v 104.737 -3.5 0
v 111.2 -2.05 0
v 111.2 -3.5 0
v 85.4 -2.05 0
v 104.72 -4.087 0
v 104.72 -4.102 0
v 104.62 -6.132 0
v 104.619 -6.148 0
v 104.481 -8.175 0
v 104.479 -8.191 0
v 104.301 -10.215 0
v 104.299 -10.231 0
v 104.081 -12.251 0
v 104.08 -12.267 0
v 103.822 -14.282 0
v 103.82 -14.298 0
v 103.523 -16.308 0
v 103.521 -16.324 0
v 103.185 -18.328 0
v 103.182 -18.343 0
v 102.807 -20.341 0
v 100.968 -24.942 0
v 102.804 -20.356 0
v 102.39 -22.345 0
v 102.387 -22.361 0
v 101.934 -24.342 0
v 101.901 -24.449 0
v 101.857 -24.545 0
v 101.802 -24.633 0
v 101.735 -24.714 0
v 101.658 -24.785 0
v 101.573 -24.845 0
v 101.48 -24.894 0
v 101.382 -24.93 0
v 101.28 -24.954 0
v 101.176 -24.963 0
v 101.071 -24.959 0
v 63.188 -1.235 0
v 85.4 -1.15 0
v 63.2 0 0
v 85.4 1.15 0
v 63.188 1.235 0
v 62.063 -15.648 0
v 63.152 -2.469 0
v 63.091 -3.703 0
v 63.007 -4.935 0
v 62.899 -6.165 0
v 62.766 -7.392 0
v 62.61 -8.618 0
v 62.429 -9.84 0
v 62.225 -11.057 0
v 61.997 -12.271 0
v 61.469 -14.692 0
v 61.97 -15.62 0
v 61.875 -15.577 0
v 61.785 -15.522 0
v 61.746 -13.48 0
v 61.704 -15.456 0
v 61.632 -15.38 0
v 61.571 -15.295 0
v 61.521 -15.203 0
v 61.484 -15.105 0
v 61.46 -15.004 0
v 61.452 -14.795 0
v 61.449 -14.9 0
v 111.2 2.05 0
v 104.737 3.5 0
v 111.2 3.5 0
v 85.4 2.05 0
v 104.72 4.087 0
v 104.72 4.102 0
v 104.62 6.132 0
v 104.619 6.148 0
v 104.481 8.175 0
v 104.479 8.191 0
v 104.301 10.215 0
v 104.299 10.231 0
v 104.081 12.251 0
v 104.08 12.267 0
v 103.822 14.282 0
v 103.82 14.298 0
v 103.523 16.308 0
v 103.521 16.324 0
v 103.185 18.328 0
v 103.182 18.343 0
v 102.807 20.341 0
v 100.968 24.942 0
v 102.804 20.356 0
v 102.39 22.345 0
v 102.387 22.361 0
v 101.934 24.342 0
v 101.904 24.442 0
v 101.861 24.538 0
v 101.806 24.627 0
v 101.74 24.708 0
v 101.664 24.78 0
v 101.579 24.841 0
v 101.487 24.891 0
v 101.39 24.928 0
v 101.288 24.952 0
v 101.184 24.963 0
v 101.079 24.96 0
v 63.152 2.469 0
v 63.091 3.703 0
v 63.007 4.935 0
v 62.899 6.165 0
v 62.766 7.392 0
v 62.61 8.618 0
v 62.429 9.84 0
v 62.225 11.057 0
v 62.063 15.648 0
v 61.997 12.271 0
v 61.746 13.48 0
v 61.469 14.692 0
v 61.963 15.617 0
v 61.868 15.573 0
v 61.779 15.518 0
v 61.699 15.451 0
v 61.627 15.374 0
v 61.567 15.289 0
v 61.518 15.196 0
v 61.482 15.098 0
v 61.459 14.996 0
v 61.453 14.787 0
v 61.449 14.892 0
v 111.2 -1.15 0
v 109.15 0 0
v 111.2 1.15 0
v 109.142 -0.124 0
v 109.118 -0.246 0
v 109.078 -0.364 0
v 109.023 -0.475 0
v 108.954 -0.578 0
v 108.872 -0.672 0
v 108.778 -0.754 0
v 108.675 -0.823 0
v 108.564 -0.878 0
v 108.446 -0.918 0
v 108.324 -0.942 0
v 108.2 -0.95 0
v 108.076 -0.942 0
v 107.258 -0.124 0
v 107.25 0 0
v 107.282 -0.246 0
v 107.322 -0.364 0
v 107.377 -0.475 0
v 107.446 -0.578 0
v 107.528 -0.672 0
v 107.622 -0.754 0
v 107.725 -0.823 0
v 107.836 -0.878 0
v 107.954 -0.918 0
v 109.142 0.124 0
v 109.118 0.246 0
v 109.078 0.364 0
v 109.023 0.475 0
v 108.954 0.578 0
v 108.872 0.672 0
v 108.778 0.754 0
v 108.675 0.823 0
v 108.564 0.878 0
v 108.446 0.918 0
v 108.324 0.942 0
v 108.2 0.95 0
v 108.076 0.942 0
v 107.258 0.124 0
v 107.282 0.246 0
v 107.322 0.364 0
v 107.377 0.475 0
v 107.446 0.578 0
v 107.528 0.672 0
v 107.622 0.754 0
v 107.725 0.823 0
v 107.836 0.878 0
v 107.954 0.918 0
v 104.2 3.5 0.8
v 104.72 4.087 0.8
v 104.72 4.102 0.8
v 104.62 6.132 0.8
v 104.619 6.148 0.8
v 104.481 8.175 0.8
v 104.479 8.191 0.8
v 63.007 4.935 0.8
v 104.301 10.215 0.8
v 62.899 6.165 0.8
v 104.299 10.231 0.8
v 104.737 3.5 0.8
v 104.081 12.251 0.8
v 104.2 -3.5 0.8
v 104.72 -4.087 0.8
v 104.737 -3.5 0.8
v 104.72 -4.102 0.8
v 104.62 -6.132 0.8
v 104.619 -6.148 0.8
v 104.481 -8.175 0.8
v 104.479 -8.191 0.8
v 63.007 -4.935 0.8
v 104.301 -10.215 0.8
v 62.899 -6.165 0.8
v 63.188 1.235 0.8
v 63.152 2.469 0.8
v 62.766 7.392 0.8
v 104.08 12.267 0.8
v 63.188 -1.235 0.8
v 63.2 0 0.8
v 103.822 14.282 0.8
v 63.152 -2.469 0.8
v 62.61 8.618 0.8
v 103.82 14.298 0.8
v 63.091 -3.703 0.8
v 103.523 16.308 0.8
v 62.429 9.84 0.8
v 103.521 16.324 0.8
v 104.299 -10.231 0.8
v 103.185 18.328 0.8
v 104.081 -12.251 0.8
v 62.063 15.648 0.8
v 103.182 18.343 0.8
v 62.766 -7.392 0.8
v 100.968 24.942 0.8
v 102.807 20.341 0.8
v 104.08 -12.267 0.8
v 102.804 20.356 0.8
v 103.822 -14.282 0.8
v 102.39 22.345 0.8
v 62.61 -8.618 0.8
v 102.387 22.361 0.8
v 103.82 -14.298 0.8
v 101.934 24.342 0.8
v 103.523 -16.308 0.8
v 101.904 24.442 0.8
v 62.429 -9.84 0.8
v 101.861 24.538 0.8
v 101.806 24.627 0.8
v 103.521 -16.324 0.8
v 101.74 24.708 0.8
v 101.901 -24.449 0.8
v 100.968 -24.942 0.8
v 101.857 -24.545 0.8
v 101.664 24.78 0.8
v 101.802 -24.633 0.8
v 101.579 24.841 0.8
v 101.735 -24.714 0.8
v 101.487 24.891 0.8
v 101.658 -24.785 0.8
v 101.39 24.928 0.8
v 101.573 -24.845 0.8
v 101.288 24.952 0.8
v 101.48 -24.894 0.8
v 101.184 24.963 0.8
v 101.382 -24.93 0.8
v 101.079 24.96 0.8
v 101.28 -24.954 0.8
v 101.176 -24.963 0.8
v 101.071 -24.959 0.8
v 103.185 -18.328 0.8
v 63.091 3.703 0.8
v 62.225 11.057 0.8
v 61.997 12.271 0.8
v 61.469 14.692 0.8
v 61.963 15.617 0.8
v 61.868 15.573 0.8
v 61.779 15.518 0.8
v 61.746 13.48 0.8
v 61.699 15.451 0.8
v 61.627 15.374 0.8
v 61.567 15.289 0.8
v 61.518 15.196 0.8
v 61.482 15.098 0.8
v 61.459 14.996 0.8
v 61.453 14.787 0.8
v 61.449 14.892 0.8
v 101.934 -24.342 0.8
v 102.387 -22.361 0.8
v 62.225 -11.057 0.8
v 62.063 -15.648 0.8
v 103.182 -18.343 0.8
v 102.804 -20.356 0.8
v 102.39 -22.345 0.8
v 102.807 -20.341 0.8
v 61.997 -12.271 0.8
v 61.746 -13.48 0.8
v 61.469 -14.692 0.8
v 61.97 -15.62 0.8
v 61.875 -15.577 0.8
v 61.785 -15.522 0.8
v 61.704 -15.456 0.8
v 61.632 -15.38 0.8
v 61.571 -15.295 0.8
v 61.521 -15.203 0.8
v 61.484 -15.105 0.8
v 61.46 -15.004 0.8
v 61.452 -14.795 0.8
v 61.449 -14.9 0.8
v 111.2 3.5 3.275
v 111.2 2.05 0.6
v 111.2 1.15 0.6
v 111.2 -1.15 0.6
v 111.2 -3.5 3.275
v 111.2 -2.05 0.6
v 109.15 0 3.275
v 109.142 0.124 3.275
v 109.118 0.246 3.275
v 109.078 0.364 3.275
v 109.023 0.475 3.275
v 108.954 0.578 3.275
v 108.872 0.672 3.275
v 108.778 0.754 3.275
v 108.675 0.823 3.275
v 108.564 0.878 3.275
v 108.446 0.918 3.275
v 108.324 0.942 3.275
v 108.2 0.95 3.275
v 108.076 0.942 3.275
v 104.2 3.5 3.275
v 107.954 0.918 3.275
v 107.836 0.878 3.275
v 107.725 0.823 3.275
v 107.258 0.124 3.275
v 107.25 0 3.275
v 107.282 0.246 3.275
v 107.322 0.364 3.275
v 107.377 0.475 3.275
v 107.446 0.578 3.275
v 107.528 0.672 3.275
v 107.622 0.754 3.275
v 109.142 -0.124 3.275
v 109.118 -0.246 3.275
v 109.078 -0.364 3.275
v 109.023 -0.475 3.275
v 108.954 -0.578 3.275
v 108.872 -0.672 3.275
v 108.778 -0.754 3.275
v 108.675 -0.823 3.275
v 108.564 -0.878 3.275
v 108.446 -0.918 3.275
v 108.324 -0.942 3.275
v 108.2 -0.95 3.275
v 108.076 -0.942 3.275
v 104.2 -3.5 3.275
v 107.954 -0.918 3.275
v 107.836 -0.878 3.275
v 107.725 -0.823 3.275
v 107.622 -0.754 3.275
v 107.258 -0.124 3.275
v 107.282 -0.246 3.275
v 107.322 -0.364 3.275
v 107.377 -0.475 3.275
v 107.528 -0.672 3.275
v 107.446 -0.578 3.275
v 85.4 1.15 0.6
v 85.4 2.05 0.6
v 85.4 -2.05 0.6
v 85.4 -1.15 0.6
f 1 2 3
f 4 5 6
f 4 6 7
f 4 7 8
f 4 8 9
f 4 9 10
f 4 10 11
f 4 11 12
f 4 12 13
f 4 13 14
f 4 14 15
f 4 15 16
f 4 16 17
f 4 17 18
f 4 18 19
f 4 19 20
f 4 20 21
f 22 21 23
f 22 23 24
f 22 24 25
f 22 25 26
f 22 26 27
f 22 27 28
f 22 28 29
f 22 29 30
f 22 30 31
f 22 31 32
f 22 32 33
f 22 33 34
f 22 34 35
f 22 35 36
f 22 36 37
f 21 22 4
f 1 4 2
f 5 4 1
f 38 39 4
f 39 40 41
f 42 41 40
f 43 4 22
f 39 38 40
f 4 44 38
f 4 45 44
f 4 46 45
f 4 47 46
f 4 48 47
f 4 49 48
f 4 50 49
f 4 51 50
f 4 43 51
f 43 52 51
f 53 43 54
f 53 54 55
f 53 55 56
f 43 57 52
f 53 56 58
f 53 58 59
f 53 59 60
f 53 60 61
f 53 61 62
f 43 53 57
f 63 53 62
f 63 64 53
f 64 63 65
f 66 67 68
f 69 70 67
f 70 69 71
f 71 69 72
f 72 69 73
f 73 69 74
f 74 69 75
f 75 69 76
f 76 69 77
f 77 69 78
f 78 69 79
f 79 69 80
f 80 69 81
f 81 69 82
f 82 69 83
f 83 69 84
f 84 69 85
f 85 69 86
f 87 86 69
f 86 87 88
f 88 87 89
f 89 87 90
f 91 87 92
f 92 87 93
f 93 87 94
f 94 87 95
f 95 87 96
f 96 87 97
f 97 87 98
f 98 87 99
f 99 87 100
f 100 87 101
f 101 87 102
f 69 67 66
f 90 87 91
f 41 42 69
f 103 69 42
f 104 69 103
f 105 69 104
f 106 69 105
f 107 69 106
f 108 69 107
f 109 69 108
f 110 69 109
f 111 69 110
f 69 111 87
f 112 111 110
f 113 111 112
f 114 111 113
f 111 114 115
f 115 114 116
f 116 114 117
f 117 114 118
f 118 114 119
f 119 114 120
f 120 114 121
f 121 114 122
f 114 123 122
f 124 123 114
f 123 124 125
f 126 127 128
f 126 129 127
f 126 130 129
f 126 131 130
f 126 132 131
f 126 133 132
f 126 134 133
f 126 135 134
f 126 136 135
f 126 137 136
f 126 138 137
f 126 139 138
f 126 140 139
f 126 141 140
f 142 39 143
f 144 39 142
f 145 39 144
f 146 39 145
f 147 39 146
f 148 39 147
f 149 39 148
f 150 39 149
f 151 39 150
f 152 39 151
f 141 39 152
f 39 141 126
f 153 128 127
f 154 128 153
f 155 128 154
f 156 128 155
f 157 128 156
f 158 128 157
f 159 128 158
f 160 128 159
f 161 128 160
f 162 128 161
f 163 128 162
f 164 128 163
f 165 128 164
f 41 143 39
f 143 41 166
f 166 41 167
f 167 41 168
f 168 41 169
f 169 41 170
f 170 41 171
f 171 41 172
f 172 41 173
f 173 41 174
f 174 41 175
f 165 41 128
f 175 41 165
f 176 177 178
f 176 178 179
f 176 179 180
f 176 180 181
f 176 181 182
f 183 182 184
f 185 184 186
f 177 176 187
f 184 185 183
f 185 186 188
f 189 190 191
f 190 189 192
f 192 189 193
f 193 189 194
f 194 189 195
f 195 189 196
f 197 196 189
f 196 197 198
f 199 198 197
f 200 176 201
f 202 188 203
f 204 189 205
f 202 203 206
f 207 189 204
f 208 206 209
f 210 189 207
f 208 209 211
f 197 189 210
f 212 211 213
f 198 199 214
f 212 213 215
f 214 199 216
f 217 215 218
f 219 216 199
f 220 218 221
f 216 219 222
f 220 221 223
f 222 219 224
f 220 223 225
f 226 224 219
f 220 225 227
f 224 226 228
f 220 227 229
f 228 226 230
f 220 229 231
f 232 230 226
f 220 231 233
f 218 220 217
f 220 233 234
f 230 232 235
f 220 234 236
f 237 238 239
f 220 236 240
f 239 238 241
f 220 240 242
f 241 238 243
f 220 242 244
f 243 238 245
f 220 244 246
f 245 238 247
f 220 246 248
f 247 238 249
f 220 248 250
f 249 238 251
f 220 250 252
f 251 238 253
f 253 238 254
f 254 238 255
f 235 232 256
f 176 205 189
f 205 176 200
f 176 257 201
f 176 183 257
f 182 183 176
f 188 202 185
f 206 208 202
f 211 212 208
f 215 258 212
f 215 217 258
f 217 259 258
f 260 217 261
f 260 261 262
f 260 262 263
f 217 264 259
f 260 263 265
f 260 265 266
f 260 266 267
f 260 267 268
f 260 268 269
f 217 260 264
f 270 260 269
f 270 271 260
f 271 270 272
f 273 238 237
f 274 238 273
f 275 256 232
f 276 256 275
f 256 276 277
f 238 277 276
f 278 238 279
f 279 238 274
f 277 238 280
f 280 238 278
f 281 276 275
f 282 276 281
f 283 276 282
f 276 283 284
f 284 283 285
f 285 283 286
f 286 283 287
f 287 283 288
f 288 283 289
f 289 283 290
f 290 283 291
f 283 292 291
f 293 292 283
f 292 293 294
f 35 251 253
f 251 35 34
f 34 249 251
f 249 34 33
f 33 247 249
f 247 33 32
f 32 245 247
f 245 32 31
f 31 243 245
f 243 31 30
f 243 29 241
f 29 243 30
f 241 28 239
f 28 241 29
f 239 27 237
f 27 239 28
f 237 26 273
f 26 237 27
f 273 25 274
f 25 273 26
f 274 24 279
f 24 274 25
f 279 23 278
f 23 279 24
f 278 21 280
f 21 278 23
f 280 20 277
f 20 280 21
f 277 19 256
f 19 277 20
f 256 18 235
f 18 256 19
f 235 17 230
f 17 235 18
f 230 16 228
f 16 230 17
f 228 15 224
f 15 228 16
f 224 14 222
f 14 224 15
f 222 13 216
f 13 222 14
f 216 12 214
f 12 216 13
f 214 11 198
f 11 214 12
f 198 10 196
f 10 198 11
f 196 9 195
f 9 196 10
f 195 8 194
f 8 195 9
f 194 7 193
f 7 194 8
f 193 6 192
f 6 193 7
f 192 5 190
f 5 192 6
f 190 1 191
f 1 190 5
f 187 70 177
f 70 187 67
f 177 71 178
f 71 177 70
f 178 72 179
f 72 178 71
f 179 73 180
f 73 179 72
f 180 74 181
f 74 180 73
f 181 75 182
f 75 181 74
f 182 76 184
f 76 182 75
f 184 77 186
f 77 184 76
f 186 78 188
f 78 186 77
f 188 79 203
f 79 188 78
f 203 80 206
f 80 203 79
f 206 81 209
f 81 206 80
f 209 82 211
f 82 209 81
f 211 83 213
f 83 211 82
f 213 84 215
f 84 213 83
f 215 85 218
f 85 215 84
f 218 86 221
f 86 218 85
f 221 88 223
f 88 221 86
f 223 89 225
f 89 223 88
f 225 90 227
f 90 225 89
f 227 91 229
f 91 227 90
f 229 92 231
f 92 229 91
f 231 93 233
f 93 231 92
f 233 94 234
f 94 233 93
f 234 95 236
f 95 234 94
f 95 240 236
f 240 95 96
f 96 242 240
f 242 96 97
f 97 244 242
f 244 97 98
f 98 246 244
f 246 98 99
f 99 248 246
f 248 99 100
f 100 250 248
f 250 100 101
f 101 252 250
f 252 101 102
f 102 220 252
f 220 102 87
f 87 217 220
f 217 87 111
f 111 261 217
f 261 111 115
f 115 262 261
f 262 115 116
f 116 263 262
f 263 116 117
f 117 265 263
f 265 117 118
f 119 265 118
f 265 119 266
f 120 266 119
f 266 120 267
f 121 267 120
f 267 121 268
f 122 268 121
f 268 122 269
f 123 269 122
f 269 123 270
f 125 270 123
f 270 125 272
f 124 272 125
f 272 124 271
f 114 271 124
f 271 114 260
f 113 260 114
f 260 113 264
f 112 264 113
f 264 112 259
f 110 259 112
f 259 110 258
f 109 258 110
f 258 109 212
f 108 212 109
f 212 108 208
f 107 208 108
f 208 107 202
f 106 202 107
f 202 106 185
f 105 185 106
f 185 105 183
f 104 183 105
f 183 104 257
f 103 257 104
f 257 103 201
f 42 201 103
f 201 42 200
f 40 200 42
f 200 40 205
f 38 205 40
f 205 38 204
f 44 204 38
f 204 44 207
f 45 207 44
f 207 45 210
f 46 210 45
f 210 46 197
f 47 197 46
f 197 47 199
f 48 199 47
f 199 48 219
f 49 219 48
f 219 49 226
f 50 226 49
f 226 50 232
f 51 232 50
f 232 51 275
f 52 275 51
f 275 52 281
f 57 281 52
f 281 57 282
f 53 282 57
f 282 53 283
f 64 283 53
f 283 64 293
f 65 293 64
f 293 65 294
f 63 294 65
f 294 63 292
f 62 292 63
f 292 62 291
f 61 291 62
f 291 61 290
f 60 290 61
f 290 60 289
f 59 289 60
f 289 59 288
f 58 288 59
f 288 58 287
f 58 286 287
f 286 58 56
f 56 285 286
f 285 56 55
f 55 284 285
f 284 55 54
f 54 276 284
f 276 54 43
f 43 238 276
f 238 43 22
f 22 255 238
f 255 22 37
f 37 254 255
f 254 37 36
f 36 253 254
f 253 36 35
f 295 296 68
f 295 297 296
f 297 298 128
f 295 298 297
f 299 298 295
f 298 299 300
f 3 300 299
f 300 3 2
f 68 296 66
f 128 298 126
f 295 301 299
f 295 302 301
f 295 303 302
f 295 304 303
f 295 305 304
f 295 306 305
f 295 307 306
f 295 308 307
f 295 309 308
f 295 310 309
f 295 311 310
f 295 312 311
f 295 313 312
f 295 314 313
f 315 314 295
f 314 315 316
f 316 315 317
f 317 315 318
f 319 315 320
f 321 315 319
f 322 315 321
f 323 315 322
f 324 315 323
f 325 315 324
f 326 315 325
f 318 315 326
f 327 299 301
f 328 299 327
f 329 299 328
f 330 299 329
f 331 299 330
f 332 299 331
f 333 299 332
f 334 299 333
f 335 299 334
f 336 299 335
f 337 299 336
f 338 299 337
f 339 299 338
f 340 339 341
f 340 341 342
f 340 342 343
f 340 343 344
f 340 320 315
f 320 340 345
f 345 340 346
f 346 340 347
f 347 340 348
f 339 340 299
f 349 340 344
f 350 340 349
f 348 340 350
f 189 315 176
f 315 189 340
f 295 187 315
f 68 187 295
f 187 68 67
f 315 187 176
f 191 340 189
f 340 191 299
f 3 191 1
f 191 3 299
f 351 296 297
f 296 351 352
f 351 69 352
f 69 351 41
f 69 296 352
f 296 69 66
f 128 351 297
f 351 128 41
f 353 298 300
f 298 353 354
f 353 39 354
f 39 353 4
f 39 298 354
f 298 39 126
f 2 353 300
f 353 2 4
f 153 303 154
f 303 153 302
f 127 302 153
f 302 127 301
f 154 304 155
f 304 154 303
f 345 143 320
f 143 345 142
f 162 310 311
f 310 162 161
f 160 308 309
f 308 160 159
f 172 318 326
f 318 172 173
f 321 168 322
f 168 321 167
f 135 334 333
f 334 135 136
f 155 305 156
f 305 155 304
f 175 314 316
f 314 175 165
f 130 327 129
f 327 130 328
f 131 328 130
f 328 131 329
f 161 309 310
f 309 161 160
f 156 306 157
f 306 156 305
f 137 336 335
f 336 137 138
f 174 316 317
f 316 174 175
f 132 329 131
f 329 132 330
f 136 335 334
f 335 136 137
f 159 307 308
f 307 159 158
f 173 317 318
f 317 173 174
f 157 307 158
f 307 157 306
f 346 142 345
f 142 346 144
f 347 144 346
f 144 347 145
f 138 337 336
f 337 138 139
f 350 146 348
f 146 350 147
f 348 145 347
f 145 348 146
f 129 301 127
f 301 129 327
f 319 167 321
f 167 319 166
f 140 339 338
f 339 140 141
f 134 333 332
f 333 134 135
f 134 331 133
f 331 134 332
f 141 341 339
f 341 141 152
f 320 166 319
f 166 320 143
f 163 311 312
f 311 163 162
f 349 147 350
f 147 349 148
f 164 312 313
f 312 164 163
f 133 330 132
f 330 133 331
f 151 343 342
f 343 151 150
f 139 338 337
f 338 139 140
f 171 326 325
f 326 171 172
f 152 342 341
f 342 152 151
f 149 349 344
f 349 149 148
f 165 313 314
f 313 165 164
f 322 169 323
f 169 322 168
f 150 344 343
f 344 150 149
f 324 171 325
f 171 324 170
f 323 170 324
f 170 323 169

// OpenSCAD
// file: parameters.scad
// =============================================================================
// Gen-CA — nightly 2026-10-13 (physics_scorer, honest magpylib watts)
// Break the plate limit instead of the physics: the 2026-10-11 scans showed watts keep rising with machine size, but Ø194 was the largest one-piece stator/rotor set that fits one 410 mm plate. Gen-CA makes the steel disc the structural rotor and prints the magnet carrier as 8 bolt-on arcs per rotor plus a separate D-flat hub, opens the stator centre, and prints the 12 bobbin bases in place inside their stator bays, so a much bigger R84 / Ø226 machine (bobbins r64–104, 4.95 mm copper, 7.55 mm magnet gap) still packs on ONE plate.
// Clocking 0 deg (magnets N facing S) + D-flat keyed bore + index notch + flip-symmetric hole map.
// Windable 2-piece bobbin; turns = physics_scorer turns_fit; copper only between flanges.
// Steel back-iron: 2× Ø194 × 4.76 mm (3/16") mild-steel discs (steel_backiron_disc.dxf); magnets sit ON the steel
// (through-pockets) -> score with --back-iron. Night 2026-10-13.
// =============================================================================
topology            = "dual_rotor";

// --- Wire / winding (physics_scorer winding-fit) -------------------------------
wire_awg            = 26;
wire_od             = 0.45;     // insulated OD mm (bare 0.405)
fill_realistic      = 0.65;     // insulated-wire area / window (DENSE layered wind with a jig; scorer cap 0.65)
turns               = 366;       // = physics_scorer turns_fit (do NOT raise)
coil_former_type    = "bobbin";
coil_core_inset     = 18.10;     // radial copper build: hub = copper boundary inset by this
wind_build_axial    = 0.0;      // nothing proud of the flanges
wind_build_radial   = 0.0;

// --- Bobbin (base + lid) ---------------------------------------------------------
coil_id_r           = 64.00;    // copper boundary sector
coil_od_r           = 104.00;
span_deg            = 26.87;    // = pitch - 2*asin((wall+0.85)/coil_id_r) -> >=1.2 mm stator web
former_web          = 4.95;     // copper height between flanges (TALL copper: steel keeps Bz up)
flange_t            = 0.80;     // >= 0.8 mm FDM wall rule (tall winds push on the flanges)
wall                = 0.80;     // flange lip beyond copper
former_bare_h       = former_web + 2 * flange_t;
coil_envelope_h     = former_bare_h + 2 * wind_build_axial;
tab_w               = 7.0;
tab_len             = 7.0;
tab_h               = former_bare_h / 2;
pin_d               = 1.9;      // 1.75 mm filament locating pin
coil_mount_r        = coil_od_r + 0.2 + 4.0;
lead_y              = 1.6;
lead_slot_w         = 0.9;
lead_groove_d       = 0.6;

// --- Gap -------------------------------------------------------------------------
run_clear           = 0.50;     // rotor face -> flange
gap_spacer_h        = run_clear + wind_build_axial;
m2m                 = coil_envelope_h + 2 * run_clear;   // rotor face to rotor face (= gap_sleeve length)

// --- Stator ----------------------------------------------------------------------
coil_stations       = 12;
bay_clear           = 0.35;     // 0.35 mm: bobbin BASES print IN PLACE inside the stator bays (print-in-place gap), then pop out
stator_thick        = former_bare_h;                        // bobbins flush both faces
stator_od           = 226;
shaft_clear_stator  = 14.0;     // stator is static; gap sleeve OD 12 spins inside
stator_ir           = 58.85;    // ANNULAR stator: open centre (nested one-plate pack); inner rim 4.0 mm

// --- Rotor(s) --------------------------------------------------------------------
magnet_Br           = 1.43;     // N52
magnet_d_large      = 20.0;
magnet_h_large      = 5.0;      // one O20x5 per pocket
magnet_h_small      = 5.0;      // unused: no O5 pockets in this kit
halbach_magnetisation = "none";  // NO O5 assist magnets in this kit (scan: they lower the 4-pole score)
rotor_b_same_axis   = true;     // same-index magnets share one axis: N faces S across the gap
large_pocket_d      = 20.3;
small_pocket_d      = 5.3;
pocket_h            = 5.00;     // THROUGH the carrier: magnet back face sits on the steel disc (FLUSH seat: carrier = magnet height, magnet face level with the rotor face)
large_n             = 8;
R_large             = 84.0;
small_r_list        = [];       // no O5 pockets
carrier_od          = 194.0;
ring_ir             = 70.85;    // RING rotor: PLA magnet ring r ring_ir..carrier_od/2 (steel disc = structural rotor)
hub_flange_od       = 74.0;     // separate rotor_hub flange (inside the ring, flush with the ring face)
csk_d               = 6.6;      // M3 countersunk head pocket (ISO 10642 head 6.0 nominal) on the stator face
csk_depth           = 1.55;     // = (csk_d - m3_clear) / 2: 90 deg cone; head sits 0.3 mm below the face
n_seg               = 8;        // magnet-carrier ARCS per rotor (segmented carrier)
seg_deg             = 360 / n_seg;
seg_start           = -22.5;   // arc edge angle (between pocket 0 and its clamp bolt)
seg_kerf_deg        = 0.4;      // gap between neighbouring arcs on the steel
carrier_thick       = pocket_h;
hub_h               = 12.0;     // > steel_t + insert: radial set-screw clears the steel
hub_od              = 24.0;     // slim hub so the M4 brace rods fit at R~18 inside the coil ring
hub_insert_d        = 4.0;      // M3 heat-set insert, radial, bears on the D-flat
rotor_b_offset_deg  = 0.0;      // CLOCKING: magnets directly opposite
shaft_key           = "dflat";
dflat_depth         = 0.5;      // 8 mm shaft with 0.5 mm flat (7.5 across flat)
index_notch_d       = 3.0;

// --- Steel back-iron (buyable laser-cut) -------------------------------------------
steel_t             = 4.76;      // mild steel thickness (image method ignores it; sized from steel_flux.py so the return path stays well below saturation)
steel_center_hole   = 26.0;     // slips over the rotor hub (OD 24)
steel_od            = carrier_od;   // steel disc OD = rotor carrier OD

// --- Modular MAX interface ----------------------------------------------------------
shaft_bore          = 8.35;
dflat_x             = 4.0 - dflat_depth + (shaft_bore - 8.0) / 2;
bearing_d           = 21.85;
bearing_h           = 7.2;
m3_clear            = 3.5;
bolt_r_inner        = 30.0;     // M3 steel-disc clamp bolts (inside the magnet ring)
bolt_n_inner        = 4;
bolt_inner_angles   = [0, 90, 180, 270];
bolt_r_outer        = 84.0;     // second M3 steel-disc clamp ring
bolt_outer_angles   = [22.5, 67.5, 112.5, 157.5, 202.5, 247.5, 292.5, 337.5];
flange_bolt_r       = 107.5;     // frame rods: OUTSIDE the rotor OD (rotors spin inside them)
flange_bolt_n       = 4;
flange_bolt_offset  = 45.00;    // between coil stations -> never cuts a lead groove/tab
brace_r             = 18.0;
brace_d             = 4.3;      // temporary M4 jack rods (assembly only)
brace_n             = 4;
brace_angles        = [45, 135, 225, 315];          // flip-symmetric

spacer_pad_od       = 14.0;
spacer_pad_id       = m3_clear;
endbell_od          = 225.0;
endbell_thick       = 8.0;
endbell_shaft_clear = 10.0;
collar_h            = 10.0;
standoff_od         = 9.0;
frame_standoff_h    = run_clear + carrier_thick + hub_h + collar_h + 2.0;
sleeve_od           = 12.0;
plate_max_mm        = 410;

$fn = 64;
// main file
// Gen-CA — bobbin LID (top flange + locating tab). Print x12, flange face DOWN on the bed.
// CA-glue onto the hub top BEFORE winding. Tab = lap joint into the stator tab pocket; 1.75 mm filament
// pin through pin hole + stator ledge, trim flush. Lead slots carry both leads flush.
include <parameters.scad>;
$fn = 48;
module sector_2d(r_in, r_out, ang) {
    polygon([
        for (a = [-ang/2 : ang/24 : ang/2]) [r_in*cos(a), r_in*sin(a)],
        for (a = [ang/2 : -ang/24 : -ang/2]) [r_out*cos(a), r_out*sin(a)]
    ]);
}
module footprint_2d() { offset(r=wall) sector_2d(coil_id_r, coil_od_r, span_deg); }
module hub_2d()       { offset(delta=-coil_core_inset) sector_2d(coil_id_r, coil_od_r, span_deg); }

difference() {
    union() {
        linear_extrude(flange_t) footprint_2d();
        translate([coil_od_r + 0.2, -tab_w/2, 0]) cube([tab_len, tab_w, tab_h]);
    }
    translate([coil_mount_r, 0, -0.1]) cylinder(d=pin_d, h=tab_h + 1);
    for (y = [lead_y, -lead_y])
        translate([coil_od_r - coil_core_inset - 0.5, y - lead_slot_w/2, -0.1])
            cube([coil_core_inset + tab_len + 2, lead_slot_w, lead_groove_d + 0.1]);
}
